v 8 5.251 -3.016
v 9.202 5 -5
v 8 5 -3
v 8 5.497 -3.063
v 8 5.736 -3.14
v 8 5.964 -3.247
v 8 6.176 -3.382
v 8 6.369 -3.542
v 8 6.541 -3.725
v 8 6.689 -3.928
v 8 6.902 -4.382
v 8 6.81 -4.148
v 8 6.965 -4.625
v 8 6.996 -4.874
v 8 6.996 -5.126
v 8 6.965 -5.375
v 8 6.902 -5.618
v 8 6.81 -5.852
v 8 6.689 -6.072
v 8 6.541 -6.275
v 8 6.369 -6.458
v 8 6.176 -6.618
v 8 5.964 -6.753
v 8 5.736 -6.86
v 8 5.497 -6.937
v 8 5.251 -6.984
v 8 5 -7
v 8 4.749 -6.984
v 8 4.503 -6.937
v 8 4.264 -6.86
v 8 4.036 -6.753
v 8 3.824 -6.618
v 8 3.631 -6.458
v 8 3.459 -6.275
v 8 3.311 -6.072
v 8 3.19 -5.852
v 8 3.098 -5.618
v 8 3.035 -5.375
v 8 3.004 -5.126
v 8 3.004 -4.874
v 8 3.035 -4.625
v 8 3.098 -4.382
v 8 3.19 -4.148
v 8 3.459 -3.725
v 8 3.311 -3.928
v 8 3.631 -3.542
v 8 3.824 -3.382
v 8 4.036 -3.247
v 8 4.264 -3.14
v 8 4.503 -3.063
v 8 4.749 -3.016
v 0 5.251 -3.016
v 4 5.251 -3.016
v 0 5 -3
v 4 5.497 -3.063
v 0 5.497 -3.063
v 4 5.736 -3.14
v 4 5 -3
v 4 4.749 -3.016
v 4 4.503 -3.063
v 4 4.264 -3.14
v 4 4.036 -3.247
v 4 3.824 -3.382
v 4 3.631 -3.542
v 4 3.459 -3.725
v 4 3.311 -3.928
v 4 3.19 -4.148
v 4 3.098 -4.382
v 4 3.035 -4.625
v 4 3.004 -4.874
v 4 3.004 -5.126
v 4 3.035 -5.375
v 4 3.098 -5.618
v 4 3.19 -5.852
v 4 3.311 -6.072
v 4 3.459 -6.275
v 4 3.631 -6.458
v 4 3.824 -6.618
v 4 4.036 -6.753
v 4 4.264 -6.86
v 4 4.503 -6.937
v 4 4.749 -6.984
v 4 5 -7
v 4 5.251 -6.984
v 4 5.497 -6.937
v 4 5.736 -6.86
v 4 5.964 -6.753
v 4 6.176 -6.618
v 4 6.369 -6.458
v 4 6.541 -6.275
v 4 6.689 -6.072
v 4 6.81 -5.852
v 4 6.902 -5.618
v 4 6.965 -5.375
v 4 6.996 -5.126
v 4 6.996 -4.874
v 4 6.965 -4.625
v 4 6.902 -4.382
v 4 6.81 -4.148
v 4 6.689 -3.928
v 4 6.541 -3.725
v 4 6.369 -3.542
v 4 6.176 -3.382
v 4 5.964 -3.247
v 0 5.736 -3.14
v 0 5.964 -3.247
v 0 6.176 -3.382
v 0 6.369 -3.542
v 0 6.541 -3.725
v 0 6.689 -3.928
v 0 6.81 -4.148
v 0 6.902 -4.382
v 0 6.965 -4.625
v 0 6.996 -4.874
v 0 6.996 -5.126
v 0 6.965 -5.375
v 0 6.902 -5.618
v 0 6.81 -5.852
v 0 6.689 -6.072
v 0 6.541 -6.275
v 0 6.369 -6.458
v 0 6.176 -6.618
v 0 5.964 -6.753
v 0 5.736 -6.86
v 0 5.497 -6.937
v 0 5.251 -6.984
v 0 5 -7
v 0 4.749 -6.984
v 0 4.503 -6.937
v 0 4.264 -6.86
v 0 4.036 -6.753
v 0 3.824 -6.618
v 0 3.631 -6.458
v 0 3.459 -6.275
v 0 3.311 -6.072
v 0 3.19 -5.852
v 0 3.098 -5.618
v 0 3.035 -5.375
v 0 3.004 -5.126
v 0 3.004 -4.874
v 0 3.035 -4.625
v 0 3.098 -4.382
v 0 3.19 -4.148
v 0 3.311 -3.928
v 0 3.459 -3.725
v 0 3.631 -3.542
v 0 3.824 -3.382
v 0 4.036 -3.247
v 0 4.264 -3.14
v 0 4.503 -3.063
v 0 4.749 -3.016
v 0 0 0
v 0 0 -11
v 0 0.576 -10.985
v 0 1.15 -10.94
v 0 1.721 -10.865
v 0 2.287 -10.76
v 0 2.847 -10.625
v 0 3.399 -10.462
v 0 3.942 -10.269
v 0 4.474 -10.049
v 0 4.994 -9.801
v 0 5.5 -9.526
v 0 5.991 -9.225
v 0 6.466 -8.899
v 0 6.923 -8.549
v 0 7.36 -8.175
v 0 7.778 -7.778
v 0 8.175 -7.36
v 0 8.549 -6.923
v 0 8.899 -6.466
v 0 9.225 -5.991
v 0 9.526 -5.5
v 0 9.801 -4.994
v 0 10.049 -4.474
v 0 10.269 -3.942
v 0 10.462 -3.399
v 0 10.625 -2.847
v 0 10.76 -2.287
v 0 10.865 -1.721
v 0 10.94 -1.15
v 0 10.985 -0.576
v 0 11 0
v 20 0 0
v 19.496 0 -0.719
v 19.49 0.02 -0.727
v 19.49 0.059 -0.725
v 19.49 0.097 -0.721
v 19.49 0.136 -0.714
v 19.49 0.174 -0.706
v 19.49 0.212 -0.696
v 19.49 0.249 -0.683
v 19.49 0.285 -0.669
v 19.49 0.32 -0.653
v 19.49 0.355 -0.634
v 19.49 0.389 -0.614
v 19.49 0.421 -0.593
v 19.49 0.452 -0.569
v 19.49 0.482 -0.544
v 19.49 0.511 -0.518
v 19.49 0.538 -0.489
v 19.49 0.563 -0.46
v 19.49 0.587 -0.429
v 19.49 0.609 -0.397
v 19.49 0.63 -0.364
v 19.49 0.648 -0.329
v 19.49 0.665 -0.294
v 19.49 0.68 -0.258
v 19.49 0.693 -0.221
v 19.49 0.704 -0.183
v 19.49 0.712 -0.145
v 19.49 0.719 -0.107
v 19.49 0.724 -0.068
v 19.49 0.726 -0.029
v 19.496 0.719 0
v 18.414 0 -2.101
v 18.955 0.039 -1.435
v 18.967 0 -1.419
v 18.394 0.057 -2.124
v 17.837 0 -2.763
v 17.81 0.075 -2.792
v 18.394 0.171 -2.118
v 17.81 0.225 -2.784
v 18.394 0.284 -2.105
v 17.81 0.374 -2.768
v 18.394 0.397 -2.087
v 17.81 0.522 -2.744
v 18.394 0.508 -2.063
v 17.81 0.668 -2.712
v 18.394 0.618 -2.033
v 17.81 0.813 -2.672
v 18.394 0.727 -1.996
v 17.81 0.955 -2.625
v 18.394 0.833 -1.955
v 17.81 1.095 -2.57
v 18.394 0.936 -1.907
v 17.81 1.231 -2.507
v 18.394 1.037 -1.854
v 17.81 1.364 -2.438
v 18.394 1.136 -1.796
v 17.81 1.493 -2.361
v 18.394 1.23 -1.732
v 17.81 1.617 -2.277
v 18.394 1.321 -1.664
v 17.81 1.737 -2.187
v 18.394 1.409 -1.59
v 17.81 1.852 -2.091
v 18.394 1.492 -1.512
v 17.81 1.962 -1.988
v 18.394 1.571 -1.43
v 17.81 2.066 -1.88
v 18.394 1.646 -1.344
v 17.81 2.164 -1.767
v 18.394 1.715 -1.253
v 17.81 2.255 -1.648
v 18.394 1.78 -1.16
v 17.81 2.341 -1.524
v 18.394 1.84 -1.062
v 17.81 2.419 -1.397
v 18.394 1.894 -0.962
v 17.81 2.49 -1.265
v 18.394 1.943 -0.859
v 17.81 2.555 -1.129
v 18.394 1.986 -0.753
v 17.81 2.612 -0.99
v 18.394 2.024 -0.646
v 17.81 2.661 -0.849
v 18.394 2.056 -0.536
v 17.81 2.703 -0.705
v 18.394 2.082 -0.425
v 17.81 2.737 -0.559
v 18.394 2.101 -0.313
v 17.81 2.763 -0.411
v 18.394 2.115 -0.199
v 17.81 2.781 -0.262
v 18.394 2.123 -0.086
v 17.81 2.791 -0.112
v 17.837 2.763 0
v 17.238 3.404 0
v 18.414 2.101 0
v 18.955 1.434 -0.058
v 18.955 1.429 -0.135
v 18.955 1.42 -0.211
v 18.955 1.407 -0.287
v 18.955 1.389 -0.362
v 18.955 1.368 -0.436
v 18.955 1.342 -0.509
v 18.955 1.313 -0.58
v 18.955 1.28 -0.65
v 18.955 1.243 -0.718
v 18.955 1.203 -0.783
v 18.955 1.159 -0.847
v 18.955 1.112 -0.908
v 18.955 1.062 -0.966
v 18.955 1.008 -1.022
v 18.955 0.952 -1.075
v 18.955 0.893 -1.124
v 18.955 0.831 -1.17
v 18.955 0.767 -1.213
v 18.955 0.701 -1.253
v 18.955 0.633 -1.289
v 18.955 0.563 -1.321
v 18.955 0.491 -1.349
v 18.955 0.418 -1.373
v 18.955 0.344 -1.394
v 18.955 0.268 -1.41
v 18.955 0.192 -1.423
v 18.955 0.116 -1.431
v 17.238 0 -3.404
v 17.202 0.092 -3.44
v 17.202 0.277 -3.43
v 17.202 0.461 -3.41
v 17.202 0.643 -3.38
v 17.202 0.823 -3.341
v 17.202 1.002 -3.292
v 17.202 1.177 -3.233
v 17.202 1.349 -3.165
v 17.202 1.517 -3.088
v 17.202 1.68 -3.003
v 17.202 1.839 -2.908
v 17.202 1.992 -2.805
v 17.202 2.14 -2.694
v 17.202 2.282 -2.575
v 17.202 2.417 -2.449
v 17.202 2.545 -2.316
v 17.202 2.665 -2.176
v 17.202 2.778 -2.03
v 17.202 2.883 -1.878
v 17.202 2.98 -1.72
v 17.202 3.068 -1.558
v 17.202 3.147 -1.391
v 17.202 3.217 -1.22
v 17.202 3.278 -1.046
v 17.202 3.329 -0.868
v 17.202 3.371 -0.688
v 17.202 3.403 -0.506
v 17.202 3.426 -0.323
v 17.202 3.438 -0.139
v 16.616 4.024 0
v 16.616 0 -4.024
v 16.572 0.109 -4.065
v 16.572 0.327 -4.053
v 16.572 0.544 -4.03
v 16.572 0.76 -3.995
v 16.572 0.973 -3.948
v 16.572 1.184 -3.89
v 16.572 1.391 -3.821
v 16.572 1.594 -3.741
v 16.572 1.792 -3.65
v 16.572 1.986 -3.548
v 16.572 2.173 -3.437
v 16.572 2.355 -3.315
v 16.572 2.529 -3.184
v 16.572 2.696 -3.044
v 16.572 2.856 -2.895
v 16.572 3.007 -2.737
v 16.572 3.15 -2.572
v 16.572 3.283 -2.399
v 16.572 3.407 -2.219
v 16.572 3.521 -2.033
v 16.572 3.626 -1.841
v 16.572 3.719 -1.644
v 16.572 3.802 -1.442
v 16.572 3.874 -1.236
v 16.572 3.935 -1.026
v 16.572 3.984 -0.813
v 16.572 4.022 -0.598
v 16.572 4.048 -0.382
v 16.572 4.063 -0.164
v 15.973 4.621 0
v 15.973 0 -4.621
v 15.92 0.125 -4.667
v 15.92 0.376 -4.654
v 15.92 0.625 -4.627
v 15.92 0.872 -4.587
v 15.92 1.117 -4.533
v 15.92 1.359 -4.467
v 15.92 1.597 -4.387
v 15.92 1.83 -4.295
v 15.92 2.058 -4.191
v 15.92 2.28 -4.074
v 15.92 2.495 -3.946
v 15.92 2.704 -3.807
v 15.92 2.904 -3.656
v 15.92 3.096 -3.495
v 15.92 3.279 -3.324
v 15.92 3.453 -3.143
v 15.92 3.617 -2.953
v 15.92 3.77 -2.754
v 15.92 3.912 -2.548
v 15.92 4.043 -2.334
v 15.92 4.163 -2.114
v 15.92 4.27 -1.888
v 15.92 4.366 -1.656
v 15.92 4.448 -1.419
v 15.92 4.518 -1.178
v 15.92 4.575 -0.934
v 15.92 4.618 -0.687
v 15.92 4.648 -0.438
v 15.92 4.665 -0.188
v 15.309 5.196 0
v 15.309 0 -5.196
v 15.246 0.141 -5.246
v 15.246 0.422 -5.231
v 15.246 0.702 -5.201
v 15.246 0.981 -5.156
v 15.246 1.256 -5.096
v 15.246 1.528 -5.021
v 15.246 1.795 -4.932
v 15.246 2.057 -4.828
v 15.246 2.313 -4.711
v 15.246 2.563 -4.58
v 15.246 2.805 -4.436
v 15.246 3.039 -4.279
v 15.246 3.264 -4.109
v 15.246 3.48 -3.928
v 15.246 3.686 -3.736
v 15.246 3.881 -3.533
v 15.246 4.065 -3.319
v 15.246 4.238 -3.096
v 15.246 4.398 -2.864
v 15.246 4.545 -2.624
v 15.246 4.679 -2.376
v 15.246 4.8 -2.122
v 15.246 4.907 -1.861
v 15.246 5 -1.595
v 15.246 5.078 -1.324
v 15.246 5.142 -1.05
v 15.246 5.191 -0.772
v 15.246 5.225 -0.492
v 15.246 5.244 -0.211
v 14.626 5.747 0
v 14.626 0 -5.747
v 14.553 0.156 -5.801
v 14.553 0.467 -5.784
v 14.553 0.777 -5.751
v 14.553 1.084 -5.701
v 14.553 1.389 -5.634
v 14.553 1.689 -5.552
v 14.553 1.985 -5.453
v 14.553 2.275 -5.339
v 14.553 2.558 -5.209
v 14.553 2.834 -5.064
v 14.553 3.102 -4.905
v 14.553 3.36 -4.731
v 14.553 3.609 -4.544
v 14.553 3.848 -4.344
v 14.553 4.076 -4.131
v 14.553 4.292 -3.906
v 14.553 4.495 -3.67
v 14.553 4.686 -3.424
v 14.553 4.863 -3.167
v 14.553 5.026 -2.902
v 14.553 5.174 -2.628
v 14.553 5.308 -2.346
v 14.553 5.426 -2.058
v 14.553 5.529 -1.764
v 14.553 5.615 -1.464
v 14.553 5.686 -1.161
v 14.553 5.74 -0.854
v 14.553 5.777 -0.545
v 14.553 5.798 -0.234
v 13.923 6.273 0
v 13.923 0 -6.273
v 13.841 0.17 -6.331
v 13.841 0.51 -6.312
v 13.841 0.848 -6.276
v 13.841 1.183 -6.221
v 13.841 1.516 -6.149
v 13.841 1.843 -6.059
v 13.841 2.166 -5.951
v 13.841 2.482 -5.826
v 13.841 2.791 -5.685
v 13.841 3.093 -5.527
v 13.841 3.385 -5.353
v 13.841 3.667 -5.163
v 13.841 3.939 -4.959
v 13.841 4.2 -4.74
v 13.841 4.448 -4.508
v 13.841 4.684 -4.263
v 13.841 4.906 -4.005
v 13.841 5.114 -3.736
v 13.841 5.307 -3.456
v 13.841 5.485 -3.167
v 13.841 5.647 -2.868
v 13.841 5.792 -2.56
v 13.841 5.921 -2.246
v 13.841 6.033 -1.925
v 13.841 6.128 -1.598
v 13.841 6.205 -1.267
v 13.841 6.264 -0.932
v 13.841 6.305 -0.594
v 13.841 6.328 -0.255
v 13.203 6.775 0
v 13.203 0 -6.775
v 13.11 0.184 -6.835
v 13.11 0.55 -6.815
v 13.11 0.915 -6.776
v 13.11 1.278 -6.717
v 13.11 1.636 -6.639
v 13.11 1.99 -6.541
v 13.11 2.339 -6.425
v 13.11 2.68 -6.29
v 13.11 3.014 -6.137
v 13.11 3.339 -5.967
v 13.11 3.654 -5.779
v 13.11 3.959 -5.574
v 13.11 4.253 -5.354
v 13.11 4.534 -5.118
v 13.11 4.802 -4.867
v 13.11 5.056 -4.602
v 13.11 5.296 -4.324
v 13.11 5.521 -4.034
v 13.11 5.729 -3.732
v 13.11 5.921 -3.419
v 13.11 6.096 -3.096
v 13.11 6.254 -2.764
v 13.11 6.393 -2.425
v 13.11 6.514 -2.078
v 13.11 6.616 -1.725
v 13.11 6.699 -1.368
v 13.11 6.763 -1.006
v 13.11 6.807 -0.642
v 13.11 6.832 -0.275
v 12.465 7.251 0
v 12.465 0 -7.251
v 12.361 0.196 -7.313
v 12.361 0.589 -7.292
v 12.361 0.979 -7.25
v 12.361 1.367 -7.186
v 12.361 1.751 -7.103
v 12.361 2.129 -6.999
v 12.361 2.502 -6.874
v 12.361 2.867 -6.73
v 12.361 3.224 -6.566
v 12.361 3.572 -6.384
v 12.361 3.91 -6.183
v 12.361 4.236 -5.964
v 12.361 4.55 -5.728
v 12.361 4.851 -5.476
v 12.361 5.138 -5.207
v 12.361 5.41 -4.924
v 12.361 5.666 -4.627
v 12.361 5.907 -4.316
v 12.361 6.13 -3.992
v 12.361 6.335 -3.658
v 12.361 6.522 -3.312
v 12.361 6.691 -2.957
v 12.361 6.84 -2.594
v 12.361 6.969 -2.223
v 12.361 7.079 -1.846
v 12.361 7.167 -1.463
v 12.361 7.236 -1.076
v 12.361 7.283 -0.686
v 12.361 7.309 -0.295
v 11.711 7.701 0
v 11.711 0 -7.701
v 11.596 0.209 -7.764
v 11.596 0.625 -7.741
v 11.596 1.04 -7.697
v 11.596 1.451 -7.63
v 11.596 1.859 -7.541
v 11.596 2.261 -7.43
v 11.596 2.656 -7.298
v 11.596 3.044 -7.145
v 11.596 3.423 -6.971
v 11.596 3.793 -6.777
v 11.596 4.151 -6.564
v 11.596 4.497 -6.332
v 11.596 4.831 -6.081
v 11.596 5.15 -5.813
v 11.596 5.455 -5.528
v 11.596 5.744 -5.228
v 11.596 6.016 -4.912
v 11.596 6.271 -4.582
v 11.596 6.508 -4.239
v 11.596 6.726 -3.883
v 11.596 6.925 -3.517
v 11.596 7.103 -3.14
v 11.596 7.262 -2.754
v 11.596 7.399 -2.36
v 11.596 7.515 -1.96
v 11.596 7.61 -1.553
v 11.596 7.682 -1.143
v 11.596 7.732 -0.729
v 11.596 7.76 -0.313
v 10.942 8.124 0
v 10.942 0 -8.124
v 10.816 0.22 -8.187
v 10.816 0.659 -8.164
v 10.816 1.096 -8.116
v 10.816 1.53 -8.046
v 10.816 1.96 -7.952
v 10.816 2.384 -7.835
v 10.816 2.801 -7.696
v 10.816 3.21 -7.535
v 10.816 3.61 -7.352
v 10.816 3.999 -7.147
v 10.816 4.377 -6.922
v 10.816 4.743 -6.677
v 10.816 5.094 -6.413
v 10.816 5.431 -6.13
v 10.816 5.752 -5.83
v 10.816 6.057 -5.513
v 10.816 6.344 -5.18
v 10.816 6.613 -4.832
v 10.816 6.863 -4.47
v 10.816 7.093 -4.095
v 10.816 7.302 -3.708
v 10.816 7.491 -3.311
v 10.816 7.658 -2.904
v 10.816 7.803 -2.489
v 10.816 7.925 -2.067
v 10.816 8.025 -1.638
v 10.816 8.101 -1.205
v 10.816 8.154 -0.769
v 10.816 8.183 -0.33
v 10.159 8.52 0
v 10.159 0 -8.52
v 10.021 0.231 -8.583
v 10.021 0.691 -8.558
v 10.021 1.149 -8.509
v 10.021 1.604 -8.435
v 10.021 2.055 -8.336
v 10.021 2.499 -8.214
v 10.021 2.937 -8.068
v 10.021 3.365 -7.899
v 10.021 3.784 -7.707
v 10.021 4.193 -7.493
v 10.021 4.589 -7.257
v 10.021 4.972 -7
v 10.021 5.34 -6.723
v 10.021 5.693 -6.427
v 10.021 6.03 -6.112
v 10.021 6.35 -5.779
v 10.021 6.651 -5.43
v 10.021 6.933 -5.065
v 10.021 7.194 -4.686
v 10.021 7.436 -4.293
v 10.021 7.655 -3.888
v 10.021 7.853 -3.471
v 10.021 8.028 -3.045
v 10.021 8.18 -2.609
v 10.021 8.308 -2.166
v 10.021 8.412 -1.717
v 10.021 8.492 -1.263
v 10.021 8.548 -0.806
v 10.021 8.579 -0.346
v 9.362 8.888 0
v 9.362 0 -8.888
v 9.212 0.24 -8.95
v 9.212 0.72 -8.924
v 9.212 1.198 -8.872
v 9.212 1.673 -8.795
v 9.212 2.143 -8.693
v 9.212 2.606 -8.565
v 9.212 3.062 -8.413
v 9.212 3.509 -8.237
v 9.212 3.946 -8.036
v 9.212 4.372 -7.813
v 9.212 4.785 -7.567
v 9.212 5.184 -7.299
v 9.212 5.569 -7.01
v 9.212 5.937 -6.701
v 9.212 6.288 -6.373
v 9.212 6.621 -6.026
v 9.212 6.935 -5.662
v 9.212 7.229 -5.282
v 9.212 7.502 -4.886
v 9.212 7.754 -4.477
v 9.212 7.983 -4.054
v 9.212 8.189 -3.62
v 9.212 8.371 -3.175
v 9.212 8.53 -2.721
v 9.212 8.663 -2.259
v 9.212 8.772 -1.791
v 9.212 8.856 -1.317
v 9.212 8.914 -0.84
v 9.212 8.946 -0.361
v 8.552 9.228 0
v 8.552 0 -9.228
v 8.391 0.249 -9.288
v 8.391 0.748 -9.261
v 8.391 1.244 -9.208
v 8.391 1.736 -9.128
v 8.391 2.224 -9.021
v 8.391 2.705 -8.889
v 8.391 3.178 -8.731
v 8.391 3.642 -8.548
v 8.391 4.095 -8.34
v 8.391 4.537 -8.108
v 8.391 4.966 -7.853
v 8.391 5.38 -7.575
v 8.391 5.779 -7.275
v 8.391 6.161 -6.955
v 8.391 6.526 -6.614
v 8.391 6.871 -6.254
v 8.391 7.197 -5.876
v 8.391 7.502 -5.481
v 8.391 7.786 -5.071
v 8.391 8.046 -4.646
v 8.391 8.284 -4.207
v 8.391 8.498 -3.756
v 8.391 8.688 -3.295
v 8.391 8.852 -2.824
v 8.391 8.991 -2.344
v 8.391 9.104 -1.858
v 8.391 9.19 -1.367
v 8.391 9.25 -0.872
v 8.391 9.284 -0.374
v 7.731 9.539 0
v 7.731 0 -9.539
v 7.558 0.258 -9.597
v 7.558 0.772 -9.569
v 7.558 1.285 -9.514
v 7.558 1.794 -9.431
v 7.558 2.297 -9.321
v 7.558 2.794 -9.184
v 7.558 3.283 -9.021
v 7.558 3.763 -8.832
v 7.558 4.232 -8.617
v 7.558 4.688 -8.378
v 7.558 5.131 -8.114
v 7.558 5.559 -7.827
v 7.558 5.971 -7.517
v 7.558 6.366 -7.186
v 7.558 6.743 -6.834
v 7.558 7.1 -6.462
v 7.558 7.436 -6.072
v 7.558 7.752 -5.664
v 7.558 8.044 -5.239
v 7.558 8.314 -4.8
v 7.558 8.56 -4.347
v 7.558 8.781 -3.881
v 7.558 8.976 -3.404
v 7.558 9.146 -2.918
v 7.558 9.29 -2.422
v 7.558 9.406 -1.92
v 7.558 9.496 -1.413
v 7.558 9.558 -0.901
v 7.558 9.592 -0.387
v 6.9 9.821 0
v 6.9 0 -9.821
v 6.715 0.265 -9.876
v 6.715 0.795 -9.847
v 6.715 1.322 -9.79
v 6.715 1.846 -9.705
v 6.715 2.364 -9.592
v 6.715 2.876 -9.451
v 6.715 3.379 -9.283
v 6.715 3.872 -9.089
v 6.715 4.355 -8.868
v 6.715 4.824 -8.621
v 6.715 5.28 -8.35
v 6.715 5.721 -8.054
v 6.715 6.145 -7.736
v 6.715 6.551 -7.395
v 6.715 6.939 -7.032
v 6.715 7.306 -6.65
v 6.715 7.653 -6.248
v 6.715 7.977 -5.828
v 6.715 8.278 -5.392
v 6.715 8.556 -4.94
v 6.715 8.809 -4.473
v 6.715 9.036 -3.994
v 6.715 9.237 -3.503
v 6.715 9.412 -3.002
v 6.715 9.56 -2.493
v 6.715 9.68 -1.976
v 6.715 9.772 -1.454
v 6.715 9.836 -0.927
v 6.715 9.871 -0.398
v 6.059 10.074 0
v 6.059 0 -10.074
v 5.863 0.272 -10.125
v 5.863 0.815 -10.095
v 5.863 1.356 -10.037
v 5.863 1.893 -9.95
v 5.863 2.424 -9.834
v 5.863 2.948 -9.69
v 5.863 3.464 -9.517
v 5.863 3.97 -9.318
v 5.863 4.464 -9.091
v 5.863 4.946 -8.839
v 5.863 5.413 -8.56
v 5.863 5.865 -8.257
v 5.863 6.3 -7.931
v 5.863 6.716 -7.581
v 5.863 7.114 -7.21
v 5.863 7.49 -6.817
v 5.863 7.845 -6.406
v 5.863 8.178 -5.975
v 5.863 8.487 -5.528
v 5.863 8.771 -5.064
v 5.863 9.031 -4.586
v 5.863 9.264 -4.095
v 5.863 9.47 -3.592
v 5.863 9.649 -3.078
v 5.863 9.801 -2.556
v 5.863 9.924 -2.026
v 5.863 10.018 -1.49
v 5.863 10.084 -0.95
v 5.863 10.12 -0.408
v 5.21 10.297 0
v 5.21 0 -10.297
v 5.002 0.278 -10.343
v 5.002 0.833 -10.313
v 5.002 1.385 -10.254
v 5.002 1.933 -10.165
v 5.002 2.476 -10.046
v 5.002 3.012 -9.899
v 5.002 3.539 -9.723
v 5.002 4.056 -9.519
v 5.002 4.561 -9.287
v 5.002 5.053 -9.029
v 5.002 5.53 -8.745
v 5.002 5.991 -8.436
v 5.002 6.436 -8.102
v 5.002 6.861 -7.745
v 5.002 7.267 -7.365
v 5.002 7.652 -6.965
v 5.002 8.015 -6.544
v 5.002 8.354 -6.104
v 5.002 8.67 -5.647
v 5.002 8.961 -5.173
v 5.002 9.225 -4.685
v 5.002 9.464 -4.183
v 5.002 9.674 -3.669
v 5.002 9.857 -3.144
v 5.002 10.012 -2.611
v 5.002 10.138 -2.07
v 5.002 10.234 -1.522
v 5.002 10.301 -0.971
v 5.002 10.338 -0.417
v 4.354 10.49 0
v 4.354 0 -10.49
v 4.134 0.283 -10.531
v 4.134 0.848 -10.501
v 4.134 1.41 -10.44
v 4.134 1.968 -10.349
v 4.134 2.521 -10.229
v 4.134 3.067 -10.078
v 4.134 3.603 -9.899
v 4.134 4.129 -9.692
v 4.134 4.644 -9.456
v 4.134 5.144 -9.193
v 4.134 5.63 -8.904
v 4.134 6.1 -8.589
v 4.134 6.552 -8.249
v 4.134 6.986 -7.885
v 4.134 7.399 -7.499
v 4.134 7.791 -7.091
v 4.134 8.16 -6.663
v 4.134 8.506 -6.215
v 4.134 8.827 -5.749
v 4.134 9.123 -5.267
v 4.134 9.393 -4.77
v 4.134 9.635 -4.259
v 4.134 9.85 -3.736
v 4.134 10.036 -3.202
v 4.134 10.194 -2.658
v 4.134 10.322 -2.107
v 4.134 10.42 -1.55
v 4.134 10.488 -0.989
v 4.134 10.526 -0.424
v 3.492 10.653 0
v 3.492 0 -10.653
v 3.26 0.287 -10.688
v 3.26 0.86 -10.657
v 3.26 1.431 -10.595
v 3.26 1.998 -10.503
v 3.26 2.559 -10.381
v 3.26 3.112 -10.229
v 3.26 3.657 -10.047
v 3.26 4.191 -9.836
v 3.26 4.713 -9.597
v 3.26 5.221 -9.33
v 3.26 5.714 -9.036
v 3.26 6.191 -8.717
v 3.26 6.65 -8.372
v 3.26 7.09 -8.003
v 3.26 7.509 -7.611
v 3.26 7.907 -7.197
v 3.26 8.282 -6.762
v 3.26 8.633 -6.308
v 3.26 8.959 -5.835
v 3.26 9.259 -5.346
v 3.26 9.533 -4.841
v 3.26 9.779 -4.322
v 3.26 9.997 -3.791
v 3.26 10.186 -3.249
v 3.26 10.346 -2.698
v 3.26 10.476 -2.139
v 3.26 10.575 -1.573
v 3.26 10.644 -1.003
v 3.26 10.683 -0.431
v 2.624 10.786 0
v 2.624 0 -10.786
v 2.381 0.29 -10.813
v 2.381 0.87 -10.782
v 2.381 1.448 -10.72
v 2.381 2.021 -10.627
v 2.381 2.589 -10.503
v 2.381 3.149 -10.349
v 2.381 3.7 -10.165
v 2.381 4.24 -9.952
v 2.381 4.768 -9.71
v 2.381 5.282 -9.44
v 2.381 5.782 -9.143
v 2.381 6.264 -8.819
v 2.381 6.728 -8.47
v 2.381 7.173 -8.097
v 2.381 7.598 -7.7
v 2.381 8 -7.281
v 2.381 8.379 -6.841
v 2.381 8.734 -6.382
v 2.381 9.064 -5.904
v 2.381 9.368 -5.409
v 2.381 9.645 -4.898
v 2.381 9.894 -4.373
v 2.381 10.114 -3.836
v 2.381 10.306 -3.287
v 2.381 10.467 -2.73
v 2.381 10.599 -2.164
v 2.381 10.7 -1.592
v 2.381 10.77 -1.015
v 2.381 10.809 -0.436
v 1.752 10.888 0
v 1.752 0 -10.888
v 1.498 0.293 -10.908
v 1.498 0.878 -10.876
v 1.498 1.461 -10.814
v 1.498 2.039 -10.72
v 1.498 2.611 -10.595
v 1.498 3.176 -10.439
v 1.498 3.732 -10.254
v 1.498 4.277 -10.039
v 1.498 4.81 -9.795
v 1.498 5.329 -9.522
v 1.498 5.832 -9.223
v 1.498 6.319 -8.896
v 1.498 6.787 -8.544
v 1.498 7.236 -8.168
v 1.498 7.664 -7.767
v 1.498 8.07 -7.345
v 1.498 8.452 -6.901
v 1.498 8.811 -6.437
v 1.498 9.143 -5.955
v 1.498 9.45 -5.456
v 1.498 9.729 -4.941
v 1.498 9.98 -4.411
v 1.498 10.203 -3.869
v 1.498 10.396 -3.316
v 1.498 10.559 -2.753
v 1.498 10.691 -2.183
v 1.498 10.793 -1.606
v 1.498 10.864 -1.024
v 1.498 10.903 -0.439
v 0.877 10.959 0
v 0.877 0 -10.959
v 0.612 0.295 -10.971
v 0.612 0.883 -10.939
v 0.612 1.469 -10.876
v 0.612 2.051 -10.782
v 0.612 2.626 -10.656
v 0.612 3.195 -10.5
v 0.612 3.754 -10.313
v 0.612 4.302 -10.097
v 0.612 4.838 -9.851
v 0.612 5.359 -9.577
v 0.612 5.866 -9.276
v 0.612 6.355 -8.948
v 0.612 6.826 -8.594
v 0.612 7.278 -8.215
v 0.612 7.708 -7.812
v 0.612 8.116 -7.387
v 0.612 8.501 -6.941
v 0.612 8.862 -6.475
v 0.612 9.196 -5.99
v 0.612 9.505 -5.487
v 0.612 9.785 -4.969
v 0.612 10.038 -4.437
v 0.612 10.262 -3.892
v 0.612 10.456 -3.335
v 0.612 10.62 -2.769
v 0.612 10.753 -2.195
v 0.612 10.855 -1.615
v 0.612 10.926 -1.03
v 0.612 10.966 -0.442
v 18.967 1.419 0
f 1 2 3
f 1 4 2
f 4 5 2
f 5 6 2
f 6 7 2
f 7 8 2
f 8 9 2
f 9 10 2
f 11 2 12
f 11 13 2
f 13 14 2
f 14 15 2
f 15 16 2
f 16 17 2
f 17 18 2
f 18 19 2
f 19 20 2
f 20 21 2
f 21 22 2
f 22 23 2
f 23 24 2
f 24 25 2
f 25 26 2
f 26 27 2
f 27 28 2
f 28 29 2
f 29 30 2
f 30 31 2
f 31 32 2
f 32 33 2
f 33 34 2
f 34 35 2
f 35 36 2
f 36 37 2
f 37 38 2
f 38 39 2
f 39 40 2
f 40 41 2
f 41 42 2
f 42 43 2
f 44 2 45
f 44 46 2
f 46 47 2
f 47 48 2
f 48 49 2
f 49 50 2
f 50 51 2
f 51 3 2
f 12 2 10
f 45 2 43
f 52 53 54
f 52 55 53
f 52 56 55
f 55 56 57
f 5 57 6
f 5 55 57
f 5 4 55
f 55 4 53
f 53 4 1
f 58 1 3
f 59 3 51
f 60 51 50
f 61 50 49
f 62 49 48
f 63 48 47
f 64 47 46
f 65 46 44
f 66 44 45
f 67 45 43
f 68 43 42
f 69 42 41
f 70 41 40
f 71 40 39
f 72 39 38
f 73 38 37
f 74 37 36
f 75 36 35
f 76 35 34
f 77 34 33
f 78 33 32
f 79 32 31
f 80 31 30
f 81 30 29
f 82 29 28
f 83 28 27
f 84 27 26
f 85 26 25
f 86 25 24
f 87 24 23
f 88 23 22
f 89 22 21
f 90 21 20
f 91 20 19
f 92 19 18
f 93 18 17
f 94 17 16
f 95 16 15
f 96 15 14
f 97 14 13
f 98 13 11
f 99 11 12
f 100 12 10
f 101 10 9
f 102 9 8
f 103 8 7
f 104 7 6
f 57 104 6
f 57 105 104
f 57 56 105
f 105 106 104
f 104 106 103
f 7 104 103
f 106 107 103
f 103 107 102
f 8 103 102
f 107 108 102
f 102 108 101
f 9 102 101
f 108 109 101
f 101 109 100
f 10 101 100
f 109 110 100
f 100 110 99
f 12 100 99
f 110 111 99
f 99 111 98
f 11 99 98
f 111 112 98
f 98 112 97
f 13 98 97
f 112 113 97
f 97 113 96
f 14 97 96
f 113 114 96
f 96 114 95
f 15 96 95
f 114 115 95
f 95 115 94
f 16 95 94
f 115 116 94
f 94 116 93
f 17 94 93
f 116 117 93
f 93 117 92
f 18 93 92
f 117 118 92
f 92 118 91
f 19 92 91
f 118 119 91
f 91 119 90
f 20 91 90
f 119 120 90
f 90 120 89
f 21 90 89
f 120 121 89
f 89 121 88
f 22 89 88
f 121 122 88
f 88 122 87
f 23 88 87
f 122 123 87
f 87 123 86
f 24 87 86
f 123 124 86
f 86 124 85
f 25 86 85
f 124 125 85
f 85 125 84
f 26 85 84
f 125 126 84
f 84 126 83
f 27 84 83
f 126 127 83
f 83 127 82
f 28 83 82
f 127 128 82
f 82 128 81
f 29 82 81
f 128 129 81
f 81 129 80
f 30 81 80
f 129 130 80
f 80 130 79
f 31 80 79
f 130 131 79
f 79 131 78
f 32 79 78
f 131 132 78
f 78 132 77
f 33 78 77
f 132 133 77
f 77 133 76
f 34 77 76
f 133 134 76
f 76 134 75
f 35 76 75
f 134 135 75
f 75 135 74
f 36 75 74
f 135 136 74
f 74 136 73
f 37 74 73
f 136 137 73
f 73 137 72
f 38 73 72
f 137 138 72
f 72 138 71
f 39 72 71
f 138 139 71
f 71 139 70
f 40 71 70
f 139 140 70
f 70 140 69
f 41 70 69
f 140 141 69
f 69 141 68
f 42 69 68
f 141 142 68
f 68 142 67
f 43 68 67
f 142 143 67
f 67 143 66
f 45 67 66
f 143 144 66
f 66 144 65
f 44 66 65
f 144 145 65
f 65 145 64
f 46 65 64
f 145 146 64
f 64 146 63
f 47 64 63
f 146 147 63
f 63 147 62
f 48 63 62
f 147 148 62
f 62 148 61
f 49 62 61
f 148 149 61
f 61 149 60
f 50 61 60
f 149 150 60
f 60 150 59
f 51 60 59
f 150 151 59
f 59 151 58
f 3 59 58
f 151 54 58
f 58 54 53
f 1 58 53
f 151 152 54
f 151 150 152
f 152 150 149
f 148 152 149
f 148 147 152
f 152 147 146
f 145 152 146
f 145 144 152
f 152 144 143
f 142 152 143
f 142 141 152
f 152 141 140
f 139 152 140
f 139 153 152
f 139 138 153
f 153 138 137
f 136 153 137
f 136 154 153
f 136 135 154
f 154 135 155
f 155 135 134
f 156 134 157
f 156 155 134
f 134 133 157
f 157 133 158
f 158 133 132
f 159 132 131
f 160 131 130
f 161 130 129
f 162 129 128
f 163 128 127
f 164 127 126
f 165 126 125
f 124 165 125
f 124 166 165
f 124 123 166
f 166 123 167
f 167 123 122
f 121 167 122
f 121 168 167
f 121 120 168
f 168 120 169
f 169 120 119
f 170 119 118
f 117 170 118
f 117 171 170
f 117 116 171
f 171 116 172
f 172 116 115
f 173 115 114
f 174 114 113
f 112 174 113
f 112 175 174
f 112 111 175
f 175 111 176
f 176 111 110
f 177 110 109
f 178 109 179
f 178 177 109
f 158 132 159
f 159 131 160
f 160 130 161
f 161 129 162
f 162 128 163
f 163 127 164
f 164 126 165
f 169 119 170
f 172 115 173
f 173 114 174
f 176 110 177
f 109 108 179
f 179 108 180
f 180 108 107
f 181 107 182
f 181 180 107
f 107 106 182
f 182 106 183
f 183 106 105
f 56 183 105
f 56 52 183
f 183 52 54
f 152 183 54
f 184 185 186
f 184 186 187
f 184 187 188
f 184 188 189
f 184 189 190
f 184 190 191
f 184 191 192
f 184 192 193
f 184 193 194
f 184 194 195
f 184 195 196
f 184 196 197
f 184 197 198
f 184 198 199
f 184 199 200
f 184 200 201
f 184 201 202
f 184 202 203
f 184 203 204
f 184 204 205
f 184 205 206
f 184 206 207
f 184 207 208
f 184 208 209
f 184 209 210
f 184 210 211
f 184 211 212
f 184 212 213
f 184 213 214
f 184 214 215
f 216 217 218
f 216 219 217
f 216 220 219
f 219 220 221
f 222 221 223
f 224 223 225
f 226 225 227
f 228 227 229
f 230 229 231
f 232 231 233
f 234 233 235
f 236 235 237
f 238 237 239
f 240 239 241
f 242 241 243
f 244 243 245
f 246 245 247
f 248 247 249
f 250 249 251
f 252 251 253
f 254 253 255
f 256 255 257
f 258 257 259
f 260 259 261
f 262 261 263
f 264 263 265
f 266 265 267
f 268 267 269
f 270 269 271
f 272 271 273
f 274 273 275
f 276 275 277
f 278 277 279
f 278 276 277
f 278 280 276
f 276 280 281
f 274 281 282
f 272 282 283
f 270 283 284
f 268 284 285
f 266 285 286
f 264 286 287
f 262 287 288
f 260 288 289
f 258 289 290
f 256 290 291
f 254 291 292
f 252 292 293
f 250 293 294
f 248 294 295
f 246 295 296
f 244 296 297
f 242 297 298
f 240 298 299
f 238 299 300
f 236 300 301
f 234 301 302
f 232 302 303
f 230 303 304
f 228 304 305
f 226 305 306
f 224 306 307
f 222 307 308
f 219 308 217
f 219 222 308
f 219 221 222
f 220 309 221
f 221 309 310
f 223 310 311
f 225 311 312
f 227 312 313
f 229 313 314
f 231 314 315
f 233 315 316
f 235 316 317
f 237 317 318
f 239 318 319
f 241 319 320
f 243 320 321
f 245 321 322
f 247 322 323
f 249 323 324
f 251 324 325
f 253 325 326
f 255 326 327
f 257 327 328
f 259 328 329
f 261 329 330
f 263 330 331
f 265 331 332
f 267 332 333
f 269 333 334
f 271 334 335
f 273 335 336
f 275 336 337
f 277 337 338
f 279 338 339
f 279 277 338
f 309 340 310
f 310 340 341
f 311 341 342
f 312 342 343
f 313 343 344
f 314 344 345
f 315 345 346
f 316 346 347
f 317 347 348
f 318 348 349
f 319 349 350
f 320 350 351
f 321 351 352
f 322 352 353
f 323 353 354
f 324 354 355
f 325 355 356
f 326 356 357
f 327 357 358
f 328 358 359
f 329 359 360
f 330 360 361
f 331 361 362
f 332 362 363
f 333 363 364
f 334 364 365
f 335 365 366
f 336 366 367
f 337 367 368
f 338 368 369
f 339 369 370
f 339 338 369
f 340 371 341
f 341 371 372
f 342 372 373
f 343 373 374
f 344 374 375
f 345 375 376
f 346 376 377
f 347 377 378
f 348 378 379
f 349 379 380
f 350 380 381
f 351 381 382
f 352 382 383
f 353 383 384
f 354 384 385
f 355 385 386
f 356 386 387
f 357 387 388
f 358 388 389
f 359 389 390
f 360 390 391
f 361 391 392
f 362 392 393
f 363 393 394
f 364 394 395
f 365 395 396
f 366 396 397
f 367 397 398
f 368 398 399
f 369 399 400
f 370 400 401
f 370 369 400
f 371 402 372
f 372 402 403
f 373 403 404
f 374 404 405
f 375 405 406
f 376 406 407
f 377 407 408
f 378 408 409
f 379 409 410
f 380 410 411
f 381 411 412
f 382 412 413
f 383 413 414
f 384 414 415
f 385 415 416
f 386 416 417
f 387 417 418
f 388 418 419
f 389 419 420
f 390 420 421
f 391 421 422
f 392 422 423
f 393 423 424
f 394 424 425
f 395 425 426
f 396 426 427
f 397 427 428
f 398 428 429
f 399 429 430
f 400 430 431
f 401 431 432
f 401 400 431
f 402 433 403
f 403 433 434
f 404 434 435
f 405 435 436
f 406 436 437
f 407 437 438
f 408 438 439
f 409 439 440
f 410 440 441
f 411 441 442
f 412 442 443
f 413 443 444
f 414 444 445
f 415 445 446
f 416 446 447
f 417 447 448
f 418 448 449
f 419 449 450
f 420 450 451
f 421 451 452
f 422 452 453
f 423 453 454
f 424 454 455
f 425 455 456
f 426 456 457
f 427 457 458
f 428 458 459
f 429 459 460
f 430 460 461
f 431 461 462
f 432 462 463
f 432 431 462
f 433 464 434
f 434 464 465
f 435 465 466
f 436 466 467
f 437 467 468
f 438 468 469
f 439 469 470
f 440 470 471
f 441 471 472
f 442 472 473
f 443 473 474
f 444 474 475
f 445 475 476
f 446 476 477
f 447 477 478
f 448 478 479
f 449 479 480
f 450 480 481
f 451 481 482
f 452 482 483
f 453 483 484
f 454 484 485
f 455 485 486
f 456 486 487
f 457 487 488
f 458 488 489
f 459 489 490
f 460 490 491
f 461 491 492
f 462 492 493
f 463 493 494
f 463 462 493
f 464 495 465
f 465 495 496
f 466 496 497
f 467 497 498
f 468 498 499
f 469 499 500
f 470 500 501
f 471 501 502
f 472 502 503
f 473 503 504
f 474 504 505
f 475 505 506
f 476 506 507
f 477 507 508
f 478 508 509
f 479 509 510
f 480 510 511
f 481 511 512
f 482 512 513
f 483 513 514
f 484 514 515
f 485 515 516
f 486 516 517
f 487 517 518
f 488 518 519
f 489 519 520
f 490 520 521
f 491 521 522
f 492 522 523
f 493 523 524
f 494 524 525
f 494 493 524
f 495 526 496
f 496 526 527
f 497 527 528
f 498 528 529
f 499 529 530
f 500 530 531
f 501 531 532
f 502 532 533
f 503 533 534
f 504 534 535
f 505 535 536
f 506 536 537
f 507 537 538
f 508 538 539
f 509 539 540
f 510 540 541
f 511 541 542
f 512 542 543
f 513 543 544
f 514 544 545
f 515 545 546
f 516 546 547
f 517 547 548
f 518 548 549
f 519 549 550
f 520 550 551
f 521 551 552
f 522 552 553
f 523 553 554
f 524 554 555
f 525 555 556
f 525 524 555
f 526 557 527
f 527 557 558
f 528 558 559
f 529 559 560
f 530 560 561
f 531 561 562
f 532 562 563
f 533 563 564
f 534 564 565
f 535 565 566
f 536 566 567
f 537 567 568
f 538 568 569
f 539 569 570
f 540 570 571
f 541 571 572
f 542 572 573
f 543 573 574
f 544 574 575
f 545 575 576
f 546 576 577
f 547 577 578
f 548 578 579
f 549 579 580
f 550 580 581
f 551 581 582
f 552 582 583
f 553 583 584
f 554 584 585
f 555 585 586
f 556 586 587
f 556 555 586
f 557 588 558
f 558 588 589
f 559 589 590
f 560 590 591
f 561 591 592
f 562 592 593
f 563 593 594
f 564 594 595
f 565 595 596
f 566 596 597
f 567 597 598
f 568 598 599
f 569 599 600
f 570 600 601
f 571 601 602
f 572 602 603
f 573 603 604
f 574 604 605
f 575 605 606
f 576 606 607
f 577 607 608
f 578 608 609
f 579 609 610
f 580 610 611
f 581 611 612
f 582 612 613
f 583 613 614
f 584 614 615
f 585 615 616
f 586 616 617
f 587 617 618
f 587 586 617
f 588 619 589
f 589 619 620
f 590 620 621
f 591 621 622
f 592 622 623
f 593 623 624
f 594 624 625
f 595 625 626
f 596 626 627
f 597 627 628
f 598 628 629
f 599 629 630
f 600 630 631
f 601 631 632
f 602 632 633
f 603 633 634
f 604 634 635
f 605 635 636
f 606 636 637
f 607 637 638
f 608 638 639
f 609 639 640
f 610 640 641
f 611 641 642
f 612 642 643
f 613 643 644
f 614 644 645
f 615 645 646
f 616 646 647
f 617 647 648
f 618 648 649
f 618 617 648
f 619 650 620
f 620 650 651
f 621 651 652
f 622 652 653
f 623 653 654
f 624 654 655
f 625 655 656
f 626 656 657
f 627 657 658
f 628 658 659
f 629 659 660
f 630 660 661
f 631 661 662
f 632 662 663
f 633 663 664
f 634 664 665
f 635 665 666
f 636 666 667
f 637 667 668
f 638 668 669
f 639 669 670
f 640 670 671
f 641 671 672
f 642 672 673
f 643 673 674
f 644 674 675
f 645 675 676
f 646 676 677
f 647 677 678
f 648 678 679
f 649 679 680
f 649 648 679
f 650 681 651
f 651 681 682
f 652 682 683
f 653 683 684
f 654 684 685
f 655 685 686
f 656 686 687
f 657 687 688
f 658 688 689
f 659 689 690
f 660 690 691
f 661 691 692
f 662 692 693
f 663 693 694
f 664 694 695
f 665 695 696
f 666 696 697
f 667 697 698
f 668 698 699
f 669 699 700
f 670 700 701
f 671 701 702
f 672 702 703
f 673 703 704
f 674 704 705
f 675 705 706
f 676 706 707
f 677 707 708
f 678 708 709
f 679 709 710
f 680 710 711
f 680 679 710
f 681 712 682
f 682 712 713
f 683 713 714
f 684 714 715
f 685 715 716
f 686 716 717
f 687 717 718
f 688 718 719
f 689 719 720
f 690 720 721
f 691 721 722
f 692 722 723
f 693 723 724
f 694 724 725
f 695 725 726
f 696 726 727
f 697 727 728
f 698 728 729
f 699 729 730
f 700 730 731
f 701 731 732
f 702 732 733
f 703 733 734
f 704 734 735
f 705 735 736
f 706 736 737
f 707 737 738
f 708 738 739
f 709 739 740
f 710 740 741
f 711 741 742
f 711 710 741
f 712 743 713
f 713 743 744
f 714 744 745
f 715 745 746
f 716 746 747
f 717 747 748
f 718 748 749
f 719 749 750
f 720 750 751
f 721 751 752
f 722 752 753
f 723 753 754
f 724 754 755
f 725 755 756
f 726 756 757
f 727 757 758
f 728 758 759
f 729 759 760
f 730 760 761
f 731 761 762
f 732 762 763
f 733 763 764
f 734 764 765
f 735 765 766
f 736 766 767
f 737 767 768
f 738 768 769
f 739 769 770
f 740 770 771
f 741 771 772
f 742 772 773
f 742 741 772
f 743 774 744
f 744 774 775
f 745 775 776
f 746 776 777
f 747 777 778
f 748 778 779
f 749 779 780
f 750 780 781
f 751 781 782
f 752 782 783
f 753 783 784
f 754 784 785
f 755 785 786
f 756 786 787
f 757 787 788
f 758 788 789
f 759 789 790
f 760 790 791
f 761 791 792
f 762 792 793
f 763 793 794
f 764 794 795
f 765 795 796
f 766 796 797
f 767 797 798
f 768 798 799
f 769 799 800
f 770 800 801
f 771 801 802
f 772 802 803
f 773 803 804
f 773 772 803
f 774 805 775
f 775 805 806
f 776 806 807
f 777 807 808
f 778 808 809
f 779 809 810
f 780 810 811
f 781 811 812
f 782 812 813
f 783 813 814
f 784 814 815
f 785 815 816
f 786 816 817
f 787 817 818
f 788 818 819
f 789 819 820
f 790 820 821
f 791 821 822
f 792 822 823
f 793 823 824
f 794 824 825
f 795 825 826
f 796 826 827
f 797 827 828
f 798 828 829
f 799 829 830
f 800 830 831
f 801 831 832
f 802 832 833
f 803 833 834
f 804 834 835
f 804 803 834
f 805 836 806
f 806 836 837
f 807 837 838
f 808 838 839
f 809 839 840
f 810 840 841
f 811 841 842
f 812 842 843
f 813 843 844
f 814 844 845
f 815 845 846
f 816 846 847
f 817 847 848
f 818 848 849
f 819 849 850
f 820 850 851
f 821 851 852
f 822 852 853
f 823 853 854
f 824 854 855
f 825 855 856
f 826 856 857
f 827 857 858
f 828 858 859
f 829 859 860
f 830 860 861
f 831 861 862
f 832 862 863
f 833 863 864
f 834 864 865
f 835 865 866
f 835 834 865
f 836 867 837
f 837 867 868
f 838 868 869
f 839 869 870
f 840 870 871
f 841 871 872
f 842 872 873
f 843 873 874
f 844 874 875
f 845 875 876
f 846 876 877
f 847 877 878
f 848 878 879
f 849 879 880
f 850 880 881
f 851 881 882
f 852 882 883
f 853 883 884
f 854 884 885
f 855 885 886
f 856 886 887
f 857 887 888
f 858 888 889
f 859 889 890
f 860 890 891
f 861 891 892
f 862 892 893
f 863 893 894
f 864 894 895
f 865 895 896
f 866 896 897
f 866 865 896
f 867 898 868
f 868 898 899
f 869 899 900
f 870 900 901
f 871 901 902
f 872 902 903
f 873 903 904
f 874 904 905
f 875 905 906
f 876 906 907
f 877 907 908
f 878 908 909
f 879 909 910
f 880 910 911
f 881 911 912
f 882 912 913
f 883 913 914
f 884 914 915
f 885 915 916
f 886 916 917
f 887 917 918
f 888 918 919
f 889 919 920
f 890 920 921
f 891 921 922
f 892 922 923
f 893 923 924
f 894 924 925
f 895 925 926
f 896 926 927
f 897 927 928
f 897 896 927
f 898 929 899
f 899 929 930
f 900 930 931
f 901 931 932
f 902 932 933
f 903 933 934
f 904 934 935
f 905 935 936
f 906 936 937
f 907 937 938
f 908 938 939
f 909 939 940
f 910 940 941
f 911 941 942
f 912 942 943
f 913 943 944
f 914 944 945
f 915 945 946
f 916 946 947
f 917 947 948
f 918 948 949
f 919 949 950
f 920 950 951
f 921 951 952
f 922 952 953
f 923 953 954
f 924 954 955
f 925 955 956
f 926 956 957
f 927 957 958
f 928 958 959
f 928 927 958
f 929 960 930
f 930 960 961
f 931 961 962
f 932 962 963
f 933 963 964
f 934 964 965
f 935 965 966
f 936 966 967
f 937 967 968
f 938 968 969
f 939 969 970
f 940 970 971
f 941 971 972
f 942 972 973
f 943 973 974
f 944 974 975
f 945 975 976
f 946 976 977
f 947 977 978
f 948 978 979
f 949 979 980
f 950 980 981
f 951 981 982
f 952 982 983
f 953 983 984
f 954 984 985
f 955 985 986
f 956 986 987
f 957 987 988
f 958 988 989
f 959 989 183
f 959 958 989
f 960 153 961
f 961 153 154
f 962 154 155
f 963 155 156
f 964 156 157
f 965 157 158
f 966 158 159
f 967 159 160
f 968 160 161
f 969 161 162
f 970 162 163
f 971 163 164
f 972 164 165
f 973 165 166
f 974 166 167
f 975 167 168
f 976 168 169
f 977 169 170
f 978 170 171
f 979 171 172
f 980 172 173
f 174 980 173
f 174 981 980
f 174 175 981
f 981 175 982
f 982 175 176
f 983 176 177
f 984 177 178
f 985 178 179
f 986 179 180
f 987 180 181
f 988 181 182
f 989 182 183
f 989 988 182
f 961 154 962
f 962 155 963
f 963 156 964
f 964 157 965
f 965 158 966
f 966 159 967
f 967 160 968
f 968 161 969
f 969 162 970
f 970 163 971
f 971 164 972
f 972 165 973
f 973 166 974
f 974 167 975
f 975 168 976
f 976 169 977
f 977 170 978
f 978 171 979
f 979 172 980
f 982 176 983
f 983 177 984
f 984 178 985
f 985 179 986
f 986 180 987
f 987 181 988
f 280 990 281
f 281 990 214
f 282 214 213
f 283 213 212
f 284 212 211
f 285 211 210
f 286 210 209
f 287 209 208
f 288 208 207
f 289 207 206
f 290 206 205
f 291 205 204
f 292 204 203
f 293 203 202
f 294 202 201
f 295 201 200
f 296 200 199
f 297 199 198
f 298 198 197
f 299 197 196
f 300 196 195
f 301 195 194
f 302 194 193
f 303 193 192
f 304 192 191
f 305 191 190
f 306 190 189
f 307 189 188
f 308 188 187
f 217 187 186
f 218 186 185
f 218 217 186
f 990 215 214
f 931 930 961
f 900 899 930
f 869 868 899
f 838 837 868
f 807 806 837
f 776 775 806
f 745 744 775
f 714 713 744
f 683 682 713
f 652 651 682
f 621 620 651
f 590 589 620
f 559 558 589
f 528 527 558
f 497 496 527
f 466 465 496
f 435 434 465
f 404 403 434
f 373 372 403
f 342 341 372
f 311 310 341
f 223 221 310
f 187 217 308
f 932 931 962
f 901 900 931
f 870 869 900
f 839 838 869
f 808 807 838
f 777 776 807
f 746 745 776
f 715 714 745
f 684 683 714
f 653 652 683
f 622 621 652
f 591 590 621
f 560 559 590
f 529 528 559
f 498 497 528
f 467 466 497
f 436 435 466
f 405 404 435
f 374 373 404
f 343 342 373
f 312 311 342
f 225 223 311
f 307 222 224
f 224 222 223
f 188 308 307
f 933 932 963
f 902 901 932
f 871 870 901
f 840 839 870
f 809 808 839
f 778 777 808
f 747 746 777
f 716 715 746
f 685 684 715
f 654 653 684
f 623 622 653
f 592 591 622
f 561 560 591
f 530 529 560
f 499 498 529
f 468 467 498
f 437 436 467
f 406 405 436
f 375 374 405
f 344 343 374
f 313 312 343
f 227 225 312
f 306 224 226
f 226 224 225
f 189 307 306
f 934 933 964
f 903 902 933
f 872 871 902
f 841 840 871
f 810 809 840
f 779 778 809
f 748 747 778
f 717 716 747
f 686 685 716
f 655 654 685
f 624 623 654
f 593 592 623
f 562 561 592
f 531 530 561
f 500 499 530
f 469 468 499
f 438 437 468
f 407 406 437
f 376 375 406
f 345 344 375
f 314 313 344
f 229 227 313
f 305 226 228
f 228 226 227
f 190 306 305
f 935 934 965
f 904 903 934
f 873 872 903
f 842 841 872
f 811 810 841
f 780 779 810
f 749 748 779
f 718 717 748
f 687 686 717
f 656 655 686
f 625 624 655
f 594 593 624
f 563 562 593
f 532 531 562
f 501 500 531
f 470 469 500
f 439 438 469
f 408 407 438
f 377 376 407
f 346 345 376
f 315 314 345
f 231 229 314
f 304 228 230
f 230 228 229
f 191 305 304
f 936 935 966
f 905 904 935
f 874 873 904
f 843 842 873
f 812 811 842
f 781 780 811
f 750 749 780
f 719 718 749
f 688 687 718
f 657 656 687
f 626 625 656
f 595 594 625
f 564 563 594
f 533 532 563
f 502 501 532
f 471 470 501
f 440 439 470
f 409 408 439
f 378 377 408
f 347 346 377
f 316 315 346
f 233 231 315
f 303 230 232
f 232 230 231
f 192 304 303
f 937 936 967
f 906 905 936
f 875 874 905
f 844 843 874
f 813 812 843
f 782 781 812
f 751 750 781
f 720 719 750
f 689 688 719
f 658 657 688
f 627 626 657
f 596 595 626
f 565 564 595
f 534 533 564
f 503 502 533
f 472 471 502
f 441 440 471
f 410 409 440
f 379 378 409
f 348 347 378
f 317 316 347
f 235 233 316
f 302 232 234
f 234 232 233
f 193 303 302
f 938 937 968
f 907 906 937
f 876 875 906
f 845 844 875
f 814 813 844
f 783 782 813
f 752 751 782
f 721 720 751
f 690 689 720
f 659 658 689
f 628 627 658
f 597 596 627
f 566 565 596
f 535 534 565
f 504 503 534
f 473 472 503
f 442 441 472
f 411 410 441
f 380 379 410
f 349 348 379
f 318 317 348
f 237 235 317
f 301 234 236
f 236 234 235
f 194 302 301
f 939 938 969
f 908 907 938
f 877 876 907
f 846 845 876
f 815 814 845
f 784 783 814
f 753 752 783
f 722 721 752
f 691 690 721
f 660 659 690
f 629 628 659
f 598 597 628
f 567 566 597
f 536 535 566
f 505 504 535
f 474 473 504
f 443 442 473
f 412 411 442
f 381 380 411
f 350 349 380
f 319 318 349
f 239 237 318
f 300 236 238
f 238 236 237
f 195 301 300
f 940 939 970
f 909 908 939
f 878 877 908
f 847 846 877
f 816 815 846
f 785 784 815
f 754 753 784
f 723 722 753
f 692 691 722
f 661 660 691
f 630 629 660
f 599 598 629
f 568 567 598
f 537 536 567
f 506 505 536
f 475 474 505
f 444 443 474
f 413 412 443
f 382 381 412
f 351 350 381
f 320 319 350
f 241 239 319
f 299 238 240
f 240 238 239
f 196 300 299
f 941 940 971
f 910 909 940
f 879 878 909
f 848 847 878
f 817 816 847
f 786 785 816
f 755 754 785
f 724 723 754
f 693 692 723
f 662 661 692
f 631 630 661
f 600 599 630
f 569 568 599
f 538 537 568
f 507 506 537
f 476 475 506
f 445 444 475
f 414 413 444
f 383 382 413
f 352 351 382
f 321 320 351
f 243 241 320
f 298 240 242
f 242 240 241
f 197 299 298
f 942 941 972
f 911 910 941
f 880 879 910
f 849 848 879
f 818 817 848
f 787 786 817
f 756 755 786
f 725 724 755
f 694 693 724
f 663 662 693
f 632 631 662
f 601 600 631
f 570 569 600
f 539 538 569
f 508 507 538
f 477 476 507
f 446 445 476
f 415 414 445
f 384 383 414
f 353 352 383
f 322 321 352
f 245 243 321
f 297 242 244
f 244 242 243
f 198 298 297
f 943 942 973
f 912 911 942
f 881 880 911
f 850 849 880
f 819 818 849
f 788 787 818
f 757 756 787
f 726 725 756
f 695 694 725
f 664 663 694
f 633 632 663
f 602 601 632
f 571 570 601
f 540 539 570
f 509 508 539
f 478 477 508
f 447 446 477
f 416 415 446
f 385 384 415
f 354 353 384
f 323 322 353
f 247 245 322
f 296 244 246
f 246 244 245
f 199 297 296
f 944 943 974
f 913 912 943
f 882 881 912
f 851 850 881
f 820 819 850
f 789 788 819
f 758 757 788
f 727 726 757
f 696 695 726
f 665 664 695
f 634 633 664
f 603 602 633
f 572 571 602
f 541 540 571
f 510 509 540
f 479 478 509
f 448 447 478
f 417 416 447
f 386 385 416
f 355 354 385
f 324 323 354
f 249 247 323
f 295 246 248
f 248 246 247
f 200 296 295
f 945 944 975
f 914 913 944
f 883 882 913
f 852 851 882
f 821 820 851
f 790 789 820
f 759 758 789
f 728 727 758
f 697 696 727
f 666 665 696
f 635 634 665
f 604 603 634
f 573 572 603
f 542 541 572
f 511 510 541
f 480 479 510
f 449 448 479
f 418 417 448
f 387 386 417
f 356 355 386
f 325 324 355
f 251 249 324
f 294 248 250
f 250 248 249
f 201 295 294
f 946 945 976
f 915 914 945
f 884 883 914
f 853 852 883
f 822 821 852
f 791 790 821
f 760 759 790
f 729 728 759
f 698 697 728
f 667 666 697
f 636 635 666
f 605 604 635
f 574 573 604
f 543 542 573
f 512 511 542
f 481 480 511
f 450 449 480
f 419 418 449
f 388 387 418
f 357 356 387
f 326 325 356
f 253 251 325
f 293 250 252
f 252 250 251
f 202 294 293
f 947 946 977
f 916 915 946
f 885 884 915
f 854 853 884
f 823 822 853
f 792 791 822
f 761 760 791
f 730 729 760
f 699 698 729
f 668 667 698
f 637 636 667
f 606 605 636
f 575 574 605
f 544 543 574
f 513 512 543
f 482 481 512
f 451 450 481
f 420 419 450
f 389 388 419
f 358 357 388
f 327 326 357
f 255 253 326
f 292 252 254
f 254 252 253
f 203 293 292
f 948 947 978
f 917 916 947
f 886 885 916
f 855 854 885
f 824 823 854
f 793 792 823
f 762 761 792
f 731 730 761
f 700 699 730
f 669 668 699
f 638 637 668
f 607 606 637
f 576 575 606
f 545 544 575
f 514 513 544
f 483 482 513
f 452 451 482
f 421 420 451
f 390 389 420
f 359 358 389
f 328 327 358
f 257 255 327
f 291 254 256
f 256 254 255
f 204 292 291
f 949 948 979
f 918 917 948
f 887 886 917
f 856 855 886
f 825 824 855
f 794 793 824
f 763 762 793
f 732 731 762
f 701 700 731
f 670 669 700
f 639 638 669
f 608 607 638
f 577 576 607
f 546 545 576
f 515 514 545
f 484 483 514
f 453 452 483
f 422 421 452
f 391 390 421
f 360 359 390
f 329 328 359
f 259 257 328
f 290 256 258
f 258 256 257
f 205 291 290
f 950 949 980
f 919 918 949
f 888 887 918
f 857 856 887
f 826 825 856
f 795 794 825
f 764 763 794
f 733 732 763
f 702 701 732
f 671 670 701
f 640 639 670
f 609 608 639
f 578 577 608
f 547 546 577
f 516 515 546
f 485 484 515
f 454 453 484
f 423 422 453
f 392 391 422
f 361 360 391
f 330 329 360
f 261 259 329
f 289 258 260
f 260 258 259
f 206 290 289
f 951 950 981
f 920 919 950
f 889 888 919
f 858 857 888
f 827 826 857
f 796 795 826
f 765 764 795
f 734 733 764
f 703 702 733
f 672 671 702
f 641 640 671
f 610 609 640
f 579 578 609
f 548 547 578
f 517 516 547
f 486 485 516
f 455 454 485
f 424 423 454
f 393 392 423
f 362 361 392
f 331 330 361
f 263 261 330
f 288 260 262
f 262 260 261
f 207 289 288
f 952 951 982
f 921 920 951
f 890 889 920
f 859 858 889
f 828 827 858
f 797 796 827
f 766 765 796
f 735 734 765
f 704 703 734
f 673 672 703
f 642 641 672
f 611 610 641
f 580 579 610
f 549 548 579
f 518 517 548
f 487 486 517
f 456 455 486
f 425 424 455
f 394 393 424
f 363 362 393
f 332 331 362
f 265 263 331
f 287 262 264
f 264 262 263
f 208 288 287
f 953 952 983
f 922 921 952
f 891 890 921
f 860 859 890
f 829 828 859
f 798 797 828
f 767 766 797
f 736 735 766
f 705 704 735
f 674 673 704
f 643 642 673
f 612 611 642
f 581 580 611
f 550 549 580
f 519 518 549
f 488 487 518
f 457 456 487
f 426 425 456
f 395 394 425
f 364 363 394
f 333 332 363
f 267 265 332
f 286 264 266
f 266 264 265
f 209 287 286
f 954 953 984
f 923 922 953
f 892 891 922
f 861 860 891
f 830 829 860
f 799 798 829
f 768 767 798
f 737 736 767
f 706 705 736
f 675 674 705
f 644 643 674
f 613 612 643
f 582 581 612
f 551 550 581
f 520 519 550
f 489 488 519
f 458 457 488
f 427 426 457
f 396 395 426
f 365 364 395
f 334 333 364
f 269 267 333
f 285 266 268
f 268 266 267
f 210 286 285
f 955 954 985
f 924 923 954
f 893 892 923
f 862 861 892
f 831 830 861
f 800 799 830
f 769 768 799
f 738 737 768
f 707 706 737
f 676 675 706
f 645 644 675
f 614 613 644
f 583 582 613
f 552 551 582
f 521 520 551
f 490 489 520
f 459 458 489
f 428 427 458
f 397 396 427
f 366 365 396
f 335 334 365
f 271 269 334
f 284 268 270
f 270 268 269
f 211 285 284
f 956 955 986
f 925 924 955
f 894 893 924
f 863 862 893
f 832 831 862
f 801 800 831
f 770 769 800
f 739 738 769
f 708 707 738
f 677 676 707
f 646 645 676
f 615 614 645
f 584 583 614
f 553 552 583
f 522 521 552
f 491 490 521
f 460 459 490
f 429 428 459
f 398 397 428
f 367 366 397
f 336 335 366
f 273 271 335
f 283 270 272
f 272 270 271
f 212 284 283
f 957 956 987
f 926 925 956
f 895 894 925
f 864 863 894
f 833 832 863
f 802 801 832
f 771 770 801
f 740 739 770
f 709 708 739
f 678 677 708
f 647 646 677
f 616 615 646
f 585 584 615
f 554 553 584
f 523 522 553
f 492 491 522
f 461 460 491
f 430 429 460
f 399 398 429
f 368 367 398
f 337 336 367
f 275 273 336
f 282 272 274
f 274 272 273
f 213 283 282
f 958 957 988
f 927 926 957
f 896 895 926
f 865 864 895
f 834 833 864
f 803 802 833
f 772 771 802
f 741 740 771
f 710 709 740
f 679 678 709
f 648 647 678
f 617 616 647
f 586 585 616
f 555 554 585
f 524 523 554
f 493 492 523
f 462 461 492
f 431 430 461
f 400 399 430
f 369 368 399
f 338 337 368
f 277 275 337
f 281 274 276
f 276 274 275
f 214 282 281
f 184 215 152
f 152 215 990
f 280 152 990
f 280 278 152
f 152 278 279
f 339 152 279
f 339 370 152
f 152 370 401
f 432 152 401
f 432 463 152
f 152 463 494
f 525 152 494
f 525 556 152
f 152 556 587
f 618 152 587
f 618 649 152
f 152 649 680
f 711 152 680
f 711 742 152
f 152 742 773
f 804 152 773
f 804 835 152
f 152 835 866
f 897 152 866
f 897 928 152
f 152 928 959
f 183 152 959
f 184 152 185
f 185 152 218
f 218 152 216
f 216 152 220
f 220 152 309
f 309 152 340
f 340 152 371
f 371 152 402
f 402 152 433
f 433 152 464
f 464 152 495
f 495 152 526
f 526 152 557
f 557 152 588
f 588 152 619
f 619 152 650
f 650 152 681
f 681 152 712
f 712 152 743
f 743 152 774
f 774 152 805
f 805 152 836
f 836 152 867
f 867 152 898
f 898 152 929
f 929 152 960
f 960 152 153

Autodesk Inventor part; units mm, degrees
ref_plane "YZ Plane" through (0, 0, 0) normal (1, 0, 0) x (0, 1, 0)
ref_plane "XZ Plane" through (0, 0, 0) normal (0, 1, 0) x (-1, 0, 0)
ref_plane "XY Plane" through (0, 0, 0) normal (0, 0, 1) x (1, 0, 0)
sketch "Sketch1" plane through (0, 0, 0) normal (0, 1, 0) x (-1, 0, 0)
  arc A0 (-1.1282, -10.942) -> (0, -11) centre (0, 0) ccw
  line L0 (0, 0) -> (0, -11)
  line L1 (0, 0) -> (-11, 0)
  line L2 (0, 0) -> (-20, 0)
  arc A1 (-20, 0) -> (0, -11) centre (0.7193, 13.9896) ccw
  dimension "d4" = 22
  dimension "d15" = 20
  dimension "d16" = 25
revolve "Revolution1" add sketch "Sketch1" angle 90 about axis through (0, 0, 0) along (1, 0, 0) contours A1 L2 L1 L0
sketch "Sketch2" plane through (0, 0, -11) normal (-1, 0, 0) x (0, 0, 1)
  line L0 (11, 0) -> (3.2218, 7.7782)
  arc A0 (11, 11) -> (0, 0) centre (11, 0) ccw projected
  line L1 (11, 11) -> (11, 0) projected
  point P0 (6, 5)
  dimension "d6" = 45
  dimension "d7" = 5
hole "Hole1" at (0, 5, -5) direction (1, 0, 0) diameter 4 depth 8 tip angle 118
properties part number "corner_insert"
